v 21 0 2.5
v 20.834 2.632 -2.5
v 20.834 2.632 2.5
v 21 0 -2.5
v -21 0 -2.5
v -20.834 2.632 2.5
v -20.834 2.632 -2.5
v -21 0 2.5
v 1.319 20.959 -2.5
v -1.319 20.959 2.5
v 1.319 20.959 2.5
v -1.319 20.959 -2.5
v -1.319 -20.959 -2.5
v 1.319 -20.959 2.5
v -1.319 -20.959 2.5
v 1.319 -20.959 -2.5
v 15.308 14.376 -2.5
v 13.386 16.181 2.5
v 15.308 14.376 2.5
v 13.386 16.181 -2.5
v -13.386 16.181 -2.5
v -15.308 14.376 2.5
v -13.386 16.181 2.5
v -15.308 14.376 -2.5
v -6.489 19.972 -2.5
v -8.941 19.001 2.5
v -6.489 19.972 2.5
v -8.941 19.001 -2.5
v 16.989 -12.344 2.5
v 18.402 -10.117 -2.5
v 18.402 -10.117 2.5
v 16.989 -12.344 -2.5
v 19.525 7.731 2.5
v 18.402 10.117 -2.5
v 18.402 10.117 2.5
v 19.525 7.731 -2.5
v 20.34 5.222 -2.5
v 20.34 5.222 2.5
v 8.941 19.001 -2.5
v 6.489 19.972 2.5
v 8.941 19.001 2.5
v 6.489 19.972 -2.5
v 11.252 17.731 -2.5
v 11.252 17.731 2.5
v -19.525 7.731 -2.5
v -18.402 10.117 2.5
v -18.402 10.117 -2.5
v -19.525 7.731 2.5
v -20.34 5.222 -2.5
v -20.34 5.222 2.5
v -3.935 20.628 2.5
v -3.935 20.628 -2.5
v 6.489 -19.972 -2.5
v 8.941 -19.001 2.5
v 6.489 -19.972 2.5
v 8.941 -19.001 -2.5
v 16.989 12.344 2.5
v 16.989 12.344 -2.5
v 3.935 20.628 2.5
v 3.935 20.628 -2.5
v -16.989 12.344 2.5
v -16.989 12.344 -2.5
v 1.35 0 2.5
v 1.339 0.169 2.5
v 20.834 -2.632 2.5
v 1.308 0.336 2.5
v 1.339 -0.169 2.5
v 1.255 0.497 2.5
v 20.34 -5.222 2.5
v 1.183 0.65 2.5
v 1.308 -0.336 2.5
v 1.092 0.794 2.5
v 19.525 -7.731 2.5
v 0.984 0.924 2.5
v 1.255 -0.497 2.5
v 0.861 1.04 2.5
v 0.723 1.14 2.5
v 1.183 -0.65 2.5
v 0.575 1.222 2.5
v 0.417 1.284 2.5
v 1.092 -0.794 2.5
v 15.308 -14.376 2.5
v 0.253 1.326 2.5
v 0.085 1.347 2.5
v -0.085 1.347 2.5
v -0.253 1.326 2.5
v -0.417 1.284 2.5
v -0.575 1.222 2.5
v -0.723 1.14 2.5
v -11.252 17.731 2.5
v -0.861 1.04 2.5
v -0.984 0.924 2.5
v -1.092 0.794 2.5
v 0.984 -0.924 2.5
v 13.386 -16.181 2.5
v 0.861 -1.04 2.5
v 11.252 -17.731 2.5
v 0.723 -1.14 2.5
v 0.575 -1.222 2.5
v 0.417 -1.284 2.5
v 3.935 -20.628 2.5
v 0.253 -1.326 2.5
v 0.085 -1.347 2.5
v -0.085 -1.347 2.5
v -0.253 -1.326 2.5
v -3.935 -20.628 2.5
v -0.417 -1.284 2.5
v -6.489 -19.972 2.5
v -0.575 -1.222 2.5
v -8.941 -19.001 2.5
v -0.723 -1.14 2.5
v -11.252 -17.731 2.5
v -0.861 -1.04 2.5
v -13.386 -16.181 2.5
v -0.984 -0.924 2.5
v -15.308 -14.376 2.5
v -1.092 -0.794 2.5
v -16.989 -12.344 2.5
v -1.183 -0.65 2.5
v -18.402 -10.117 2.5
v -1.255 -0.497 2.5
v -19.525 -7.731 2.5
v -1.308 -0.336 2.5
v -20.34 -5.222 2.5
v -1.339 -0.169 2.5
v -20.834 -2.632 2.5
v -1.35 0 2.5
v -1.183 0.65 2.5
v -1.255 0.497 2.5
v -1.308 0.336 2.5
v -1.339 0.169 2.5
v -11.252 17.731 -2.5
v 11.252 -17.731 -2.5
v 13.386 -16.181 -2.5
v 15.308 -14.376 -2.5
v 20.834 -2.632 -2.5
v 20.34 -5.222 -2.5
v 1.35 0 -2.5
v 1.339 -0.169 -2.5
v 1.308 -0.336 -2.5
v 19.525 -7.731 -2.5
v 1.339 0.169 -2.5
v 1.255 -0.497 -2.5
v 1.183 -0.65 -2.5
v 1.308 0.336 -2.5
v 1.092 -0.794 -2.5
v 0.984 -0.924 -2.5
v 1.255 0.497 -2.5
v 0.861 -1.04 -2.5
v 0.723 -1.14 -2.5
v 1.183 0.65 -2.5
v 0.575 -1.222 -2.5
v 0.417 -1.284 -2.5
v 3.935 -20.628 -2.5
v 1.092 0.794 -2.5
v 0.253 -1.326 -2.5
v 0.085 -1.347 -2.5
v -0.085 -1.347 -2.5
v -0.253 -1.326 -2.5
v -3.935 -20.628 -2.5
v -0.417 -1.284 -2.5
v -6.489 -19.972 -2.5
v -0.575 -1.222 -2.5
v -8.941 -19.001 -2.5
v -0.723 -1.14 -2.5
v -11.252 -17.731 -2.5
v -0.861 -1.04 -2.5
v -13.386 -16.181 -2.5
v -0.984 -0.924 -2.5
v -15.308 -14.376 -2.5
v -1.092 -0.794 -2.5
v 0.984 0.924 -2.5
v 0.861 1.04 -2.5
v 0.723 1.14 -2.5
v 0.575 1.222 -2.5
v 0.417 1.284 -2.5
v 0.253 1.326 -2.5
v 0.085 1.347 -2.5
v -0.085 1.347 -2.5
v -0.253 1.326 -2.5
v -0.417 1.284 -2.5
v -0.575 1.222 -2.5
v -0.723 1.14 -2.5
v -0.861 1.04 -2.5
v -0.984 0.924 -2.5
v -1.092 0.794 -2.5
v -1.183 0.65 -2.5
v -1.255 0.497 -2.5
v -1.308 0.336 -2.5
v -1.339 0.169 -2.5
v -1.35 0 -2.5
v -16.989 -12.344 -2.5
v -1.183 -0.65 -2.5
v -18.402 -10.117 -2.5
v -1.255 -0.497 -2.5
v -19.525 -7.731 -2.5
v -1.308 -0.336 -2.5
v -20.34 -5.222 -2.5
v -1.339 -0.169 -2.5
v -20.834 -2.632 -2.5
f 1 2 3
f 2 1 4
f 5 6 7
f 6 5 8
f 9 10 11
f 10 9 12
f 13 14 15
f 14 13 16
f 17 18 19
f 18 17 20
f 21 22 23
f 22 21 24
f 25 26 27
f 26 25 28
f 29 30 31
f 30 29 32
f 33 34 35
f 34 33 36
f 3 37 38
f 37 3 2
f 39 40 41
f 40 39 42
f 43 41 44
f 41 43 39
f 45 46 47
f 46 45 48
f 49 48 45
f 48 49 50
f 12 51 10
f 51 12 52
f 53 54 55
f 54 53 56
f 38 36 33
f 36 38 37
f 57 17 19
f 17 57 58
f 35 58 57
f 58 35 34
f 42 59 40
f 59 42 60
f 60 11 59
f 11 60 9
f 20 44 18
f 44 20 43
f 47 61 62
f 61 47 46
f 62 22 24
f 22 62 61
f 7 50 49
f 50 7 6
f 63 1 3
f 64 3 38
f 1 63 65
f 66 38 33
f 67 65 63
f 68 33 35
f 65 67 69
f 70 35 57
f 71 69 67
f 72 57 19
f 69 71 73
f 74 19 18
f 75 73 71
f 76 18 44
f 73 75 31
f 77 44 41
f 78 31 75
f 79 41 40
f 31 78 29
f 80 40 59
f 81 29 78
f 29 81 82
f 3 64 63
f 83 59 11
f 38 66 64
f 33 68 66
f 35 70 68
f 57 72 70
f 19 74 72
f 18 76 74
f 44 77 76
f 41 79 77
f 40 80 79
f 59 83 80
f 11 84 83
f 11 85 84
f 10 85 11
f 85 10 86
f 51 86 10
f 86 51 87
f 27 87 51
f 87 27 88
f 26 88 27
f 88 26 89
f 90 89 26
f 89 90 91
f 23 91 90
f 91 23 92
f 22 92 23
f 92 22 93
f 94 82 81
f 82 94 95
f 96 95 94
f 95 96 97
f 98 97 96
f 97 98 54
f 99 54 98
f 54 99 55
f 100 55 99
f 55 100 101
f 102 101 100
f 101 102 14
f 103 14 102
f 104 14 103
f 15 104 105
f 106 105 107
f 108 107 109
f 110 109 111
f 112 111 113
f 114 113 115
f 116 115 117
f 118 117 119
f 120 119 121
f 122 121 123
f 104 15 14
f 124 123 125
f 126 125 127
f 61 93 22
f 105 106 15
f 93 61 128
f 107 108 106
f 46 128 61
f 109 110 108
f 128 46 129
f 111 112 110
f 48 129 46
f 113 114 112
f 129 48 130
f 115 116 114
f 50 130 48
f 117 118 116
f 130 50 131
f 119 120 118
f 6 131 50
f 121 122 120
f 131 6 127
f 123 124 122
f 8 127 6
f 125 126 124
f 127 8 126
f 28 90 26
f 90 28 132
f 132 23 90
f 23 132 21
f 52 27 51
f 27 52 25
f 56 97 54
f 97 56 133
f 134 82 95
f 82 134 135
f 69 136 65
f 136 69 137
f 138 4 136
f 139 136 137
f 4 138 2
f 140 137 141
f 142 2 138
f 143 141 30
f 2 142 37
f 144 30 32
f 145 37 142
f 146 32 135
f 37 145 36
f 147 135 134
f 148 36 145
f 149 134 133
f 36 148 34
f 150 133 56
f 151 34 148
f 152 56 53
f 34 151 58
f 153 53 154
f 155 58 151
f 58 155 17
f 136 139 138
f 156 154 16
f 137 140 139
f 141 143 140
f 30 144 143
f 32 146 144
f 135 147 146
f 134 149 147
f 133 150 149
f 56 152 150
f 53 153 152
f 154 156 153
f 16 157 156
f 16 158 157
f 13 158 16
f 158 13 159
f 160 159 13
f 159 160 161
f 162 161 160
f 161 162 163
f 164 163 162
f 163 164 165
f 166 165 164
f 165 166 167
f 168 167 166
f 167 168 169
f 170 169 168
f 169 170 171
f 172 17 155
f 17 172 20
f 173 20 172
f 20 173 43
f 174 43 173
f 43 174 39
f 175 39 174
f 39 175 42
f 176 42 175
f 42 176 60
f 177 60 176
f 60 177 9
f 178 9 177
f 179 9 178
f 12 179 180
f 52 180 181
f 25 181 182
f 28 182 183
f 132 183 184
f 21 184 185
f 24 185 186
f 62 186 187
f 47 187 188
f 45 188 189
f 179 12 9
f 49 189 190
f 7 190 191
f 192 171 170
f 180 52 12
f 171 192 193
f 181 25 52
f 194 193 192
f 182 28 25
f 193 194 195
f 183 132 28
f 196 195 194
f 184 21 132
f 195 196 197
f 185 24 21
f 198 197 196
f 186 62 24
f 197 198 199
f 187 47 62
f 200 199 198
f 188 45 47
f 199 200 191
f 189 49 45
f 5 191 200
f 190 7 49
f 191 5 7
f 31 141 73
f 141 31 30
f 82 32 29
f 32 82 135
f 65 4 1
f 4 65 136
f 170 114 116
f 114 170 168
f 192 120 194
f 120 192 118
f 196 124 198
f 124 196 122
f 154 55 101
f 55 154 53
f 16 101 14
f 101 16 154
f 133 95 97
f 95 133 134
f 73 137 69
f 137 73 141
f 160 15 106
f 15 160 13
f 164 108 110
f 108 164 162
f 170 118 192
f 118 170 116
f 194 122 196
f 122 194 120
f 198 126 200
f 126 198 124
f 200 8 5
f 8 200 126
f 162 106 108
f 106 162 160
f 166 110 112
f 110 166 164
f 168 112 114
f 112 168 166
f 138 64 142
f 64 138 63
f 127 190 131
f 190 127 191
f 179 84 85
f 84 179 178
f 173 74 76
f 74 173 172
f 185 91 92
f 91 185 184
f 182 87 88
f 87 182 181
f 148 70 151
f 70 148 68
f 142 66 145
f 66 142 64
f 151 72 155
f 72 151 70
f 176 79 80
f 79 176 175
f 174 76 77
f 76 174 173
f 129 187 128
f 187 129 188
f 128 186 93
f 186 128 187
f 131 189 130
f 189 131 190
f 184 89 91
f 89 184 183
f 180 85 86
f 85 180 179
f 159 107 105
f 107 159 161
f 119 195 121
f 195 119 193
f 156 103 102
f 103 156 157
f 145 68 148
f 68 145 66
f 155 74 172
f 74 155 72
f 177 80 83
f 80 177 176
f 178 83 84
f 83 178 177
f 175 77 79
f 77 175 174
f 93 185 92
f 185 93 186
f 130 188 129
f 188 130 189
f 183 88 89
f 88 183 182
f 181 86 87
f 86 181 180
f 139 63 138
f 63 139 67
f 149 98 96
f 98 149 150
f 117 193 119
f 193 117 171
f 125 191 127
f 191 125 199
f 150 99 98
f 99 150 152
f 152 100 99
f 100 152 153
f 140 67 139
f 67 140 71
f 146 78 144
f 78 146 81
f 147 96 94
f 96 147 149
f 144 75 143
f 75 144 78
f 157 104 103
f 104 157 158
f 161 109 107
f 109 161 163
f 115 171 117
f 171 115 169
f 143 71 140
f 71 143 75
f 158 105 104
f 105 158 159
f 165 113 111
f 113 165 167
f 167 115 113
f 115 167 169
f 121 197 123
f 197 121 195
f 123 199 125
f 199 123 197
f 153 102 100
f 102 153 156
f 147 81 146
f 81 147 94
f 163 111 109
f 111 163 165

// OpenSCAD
$fn = 50;


difference() {
	union() {
		translate(v = [0, 0, -2.5000000000]) {
			cylinder(h = 5, r = 21.0000000000);
		}
	}
	union() {
		translate(v = [0, 0, -100.0000000000]) {
			cylinder(h = 200, r = 1.3500000000);
		}
	}
}
